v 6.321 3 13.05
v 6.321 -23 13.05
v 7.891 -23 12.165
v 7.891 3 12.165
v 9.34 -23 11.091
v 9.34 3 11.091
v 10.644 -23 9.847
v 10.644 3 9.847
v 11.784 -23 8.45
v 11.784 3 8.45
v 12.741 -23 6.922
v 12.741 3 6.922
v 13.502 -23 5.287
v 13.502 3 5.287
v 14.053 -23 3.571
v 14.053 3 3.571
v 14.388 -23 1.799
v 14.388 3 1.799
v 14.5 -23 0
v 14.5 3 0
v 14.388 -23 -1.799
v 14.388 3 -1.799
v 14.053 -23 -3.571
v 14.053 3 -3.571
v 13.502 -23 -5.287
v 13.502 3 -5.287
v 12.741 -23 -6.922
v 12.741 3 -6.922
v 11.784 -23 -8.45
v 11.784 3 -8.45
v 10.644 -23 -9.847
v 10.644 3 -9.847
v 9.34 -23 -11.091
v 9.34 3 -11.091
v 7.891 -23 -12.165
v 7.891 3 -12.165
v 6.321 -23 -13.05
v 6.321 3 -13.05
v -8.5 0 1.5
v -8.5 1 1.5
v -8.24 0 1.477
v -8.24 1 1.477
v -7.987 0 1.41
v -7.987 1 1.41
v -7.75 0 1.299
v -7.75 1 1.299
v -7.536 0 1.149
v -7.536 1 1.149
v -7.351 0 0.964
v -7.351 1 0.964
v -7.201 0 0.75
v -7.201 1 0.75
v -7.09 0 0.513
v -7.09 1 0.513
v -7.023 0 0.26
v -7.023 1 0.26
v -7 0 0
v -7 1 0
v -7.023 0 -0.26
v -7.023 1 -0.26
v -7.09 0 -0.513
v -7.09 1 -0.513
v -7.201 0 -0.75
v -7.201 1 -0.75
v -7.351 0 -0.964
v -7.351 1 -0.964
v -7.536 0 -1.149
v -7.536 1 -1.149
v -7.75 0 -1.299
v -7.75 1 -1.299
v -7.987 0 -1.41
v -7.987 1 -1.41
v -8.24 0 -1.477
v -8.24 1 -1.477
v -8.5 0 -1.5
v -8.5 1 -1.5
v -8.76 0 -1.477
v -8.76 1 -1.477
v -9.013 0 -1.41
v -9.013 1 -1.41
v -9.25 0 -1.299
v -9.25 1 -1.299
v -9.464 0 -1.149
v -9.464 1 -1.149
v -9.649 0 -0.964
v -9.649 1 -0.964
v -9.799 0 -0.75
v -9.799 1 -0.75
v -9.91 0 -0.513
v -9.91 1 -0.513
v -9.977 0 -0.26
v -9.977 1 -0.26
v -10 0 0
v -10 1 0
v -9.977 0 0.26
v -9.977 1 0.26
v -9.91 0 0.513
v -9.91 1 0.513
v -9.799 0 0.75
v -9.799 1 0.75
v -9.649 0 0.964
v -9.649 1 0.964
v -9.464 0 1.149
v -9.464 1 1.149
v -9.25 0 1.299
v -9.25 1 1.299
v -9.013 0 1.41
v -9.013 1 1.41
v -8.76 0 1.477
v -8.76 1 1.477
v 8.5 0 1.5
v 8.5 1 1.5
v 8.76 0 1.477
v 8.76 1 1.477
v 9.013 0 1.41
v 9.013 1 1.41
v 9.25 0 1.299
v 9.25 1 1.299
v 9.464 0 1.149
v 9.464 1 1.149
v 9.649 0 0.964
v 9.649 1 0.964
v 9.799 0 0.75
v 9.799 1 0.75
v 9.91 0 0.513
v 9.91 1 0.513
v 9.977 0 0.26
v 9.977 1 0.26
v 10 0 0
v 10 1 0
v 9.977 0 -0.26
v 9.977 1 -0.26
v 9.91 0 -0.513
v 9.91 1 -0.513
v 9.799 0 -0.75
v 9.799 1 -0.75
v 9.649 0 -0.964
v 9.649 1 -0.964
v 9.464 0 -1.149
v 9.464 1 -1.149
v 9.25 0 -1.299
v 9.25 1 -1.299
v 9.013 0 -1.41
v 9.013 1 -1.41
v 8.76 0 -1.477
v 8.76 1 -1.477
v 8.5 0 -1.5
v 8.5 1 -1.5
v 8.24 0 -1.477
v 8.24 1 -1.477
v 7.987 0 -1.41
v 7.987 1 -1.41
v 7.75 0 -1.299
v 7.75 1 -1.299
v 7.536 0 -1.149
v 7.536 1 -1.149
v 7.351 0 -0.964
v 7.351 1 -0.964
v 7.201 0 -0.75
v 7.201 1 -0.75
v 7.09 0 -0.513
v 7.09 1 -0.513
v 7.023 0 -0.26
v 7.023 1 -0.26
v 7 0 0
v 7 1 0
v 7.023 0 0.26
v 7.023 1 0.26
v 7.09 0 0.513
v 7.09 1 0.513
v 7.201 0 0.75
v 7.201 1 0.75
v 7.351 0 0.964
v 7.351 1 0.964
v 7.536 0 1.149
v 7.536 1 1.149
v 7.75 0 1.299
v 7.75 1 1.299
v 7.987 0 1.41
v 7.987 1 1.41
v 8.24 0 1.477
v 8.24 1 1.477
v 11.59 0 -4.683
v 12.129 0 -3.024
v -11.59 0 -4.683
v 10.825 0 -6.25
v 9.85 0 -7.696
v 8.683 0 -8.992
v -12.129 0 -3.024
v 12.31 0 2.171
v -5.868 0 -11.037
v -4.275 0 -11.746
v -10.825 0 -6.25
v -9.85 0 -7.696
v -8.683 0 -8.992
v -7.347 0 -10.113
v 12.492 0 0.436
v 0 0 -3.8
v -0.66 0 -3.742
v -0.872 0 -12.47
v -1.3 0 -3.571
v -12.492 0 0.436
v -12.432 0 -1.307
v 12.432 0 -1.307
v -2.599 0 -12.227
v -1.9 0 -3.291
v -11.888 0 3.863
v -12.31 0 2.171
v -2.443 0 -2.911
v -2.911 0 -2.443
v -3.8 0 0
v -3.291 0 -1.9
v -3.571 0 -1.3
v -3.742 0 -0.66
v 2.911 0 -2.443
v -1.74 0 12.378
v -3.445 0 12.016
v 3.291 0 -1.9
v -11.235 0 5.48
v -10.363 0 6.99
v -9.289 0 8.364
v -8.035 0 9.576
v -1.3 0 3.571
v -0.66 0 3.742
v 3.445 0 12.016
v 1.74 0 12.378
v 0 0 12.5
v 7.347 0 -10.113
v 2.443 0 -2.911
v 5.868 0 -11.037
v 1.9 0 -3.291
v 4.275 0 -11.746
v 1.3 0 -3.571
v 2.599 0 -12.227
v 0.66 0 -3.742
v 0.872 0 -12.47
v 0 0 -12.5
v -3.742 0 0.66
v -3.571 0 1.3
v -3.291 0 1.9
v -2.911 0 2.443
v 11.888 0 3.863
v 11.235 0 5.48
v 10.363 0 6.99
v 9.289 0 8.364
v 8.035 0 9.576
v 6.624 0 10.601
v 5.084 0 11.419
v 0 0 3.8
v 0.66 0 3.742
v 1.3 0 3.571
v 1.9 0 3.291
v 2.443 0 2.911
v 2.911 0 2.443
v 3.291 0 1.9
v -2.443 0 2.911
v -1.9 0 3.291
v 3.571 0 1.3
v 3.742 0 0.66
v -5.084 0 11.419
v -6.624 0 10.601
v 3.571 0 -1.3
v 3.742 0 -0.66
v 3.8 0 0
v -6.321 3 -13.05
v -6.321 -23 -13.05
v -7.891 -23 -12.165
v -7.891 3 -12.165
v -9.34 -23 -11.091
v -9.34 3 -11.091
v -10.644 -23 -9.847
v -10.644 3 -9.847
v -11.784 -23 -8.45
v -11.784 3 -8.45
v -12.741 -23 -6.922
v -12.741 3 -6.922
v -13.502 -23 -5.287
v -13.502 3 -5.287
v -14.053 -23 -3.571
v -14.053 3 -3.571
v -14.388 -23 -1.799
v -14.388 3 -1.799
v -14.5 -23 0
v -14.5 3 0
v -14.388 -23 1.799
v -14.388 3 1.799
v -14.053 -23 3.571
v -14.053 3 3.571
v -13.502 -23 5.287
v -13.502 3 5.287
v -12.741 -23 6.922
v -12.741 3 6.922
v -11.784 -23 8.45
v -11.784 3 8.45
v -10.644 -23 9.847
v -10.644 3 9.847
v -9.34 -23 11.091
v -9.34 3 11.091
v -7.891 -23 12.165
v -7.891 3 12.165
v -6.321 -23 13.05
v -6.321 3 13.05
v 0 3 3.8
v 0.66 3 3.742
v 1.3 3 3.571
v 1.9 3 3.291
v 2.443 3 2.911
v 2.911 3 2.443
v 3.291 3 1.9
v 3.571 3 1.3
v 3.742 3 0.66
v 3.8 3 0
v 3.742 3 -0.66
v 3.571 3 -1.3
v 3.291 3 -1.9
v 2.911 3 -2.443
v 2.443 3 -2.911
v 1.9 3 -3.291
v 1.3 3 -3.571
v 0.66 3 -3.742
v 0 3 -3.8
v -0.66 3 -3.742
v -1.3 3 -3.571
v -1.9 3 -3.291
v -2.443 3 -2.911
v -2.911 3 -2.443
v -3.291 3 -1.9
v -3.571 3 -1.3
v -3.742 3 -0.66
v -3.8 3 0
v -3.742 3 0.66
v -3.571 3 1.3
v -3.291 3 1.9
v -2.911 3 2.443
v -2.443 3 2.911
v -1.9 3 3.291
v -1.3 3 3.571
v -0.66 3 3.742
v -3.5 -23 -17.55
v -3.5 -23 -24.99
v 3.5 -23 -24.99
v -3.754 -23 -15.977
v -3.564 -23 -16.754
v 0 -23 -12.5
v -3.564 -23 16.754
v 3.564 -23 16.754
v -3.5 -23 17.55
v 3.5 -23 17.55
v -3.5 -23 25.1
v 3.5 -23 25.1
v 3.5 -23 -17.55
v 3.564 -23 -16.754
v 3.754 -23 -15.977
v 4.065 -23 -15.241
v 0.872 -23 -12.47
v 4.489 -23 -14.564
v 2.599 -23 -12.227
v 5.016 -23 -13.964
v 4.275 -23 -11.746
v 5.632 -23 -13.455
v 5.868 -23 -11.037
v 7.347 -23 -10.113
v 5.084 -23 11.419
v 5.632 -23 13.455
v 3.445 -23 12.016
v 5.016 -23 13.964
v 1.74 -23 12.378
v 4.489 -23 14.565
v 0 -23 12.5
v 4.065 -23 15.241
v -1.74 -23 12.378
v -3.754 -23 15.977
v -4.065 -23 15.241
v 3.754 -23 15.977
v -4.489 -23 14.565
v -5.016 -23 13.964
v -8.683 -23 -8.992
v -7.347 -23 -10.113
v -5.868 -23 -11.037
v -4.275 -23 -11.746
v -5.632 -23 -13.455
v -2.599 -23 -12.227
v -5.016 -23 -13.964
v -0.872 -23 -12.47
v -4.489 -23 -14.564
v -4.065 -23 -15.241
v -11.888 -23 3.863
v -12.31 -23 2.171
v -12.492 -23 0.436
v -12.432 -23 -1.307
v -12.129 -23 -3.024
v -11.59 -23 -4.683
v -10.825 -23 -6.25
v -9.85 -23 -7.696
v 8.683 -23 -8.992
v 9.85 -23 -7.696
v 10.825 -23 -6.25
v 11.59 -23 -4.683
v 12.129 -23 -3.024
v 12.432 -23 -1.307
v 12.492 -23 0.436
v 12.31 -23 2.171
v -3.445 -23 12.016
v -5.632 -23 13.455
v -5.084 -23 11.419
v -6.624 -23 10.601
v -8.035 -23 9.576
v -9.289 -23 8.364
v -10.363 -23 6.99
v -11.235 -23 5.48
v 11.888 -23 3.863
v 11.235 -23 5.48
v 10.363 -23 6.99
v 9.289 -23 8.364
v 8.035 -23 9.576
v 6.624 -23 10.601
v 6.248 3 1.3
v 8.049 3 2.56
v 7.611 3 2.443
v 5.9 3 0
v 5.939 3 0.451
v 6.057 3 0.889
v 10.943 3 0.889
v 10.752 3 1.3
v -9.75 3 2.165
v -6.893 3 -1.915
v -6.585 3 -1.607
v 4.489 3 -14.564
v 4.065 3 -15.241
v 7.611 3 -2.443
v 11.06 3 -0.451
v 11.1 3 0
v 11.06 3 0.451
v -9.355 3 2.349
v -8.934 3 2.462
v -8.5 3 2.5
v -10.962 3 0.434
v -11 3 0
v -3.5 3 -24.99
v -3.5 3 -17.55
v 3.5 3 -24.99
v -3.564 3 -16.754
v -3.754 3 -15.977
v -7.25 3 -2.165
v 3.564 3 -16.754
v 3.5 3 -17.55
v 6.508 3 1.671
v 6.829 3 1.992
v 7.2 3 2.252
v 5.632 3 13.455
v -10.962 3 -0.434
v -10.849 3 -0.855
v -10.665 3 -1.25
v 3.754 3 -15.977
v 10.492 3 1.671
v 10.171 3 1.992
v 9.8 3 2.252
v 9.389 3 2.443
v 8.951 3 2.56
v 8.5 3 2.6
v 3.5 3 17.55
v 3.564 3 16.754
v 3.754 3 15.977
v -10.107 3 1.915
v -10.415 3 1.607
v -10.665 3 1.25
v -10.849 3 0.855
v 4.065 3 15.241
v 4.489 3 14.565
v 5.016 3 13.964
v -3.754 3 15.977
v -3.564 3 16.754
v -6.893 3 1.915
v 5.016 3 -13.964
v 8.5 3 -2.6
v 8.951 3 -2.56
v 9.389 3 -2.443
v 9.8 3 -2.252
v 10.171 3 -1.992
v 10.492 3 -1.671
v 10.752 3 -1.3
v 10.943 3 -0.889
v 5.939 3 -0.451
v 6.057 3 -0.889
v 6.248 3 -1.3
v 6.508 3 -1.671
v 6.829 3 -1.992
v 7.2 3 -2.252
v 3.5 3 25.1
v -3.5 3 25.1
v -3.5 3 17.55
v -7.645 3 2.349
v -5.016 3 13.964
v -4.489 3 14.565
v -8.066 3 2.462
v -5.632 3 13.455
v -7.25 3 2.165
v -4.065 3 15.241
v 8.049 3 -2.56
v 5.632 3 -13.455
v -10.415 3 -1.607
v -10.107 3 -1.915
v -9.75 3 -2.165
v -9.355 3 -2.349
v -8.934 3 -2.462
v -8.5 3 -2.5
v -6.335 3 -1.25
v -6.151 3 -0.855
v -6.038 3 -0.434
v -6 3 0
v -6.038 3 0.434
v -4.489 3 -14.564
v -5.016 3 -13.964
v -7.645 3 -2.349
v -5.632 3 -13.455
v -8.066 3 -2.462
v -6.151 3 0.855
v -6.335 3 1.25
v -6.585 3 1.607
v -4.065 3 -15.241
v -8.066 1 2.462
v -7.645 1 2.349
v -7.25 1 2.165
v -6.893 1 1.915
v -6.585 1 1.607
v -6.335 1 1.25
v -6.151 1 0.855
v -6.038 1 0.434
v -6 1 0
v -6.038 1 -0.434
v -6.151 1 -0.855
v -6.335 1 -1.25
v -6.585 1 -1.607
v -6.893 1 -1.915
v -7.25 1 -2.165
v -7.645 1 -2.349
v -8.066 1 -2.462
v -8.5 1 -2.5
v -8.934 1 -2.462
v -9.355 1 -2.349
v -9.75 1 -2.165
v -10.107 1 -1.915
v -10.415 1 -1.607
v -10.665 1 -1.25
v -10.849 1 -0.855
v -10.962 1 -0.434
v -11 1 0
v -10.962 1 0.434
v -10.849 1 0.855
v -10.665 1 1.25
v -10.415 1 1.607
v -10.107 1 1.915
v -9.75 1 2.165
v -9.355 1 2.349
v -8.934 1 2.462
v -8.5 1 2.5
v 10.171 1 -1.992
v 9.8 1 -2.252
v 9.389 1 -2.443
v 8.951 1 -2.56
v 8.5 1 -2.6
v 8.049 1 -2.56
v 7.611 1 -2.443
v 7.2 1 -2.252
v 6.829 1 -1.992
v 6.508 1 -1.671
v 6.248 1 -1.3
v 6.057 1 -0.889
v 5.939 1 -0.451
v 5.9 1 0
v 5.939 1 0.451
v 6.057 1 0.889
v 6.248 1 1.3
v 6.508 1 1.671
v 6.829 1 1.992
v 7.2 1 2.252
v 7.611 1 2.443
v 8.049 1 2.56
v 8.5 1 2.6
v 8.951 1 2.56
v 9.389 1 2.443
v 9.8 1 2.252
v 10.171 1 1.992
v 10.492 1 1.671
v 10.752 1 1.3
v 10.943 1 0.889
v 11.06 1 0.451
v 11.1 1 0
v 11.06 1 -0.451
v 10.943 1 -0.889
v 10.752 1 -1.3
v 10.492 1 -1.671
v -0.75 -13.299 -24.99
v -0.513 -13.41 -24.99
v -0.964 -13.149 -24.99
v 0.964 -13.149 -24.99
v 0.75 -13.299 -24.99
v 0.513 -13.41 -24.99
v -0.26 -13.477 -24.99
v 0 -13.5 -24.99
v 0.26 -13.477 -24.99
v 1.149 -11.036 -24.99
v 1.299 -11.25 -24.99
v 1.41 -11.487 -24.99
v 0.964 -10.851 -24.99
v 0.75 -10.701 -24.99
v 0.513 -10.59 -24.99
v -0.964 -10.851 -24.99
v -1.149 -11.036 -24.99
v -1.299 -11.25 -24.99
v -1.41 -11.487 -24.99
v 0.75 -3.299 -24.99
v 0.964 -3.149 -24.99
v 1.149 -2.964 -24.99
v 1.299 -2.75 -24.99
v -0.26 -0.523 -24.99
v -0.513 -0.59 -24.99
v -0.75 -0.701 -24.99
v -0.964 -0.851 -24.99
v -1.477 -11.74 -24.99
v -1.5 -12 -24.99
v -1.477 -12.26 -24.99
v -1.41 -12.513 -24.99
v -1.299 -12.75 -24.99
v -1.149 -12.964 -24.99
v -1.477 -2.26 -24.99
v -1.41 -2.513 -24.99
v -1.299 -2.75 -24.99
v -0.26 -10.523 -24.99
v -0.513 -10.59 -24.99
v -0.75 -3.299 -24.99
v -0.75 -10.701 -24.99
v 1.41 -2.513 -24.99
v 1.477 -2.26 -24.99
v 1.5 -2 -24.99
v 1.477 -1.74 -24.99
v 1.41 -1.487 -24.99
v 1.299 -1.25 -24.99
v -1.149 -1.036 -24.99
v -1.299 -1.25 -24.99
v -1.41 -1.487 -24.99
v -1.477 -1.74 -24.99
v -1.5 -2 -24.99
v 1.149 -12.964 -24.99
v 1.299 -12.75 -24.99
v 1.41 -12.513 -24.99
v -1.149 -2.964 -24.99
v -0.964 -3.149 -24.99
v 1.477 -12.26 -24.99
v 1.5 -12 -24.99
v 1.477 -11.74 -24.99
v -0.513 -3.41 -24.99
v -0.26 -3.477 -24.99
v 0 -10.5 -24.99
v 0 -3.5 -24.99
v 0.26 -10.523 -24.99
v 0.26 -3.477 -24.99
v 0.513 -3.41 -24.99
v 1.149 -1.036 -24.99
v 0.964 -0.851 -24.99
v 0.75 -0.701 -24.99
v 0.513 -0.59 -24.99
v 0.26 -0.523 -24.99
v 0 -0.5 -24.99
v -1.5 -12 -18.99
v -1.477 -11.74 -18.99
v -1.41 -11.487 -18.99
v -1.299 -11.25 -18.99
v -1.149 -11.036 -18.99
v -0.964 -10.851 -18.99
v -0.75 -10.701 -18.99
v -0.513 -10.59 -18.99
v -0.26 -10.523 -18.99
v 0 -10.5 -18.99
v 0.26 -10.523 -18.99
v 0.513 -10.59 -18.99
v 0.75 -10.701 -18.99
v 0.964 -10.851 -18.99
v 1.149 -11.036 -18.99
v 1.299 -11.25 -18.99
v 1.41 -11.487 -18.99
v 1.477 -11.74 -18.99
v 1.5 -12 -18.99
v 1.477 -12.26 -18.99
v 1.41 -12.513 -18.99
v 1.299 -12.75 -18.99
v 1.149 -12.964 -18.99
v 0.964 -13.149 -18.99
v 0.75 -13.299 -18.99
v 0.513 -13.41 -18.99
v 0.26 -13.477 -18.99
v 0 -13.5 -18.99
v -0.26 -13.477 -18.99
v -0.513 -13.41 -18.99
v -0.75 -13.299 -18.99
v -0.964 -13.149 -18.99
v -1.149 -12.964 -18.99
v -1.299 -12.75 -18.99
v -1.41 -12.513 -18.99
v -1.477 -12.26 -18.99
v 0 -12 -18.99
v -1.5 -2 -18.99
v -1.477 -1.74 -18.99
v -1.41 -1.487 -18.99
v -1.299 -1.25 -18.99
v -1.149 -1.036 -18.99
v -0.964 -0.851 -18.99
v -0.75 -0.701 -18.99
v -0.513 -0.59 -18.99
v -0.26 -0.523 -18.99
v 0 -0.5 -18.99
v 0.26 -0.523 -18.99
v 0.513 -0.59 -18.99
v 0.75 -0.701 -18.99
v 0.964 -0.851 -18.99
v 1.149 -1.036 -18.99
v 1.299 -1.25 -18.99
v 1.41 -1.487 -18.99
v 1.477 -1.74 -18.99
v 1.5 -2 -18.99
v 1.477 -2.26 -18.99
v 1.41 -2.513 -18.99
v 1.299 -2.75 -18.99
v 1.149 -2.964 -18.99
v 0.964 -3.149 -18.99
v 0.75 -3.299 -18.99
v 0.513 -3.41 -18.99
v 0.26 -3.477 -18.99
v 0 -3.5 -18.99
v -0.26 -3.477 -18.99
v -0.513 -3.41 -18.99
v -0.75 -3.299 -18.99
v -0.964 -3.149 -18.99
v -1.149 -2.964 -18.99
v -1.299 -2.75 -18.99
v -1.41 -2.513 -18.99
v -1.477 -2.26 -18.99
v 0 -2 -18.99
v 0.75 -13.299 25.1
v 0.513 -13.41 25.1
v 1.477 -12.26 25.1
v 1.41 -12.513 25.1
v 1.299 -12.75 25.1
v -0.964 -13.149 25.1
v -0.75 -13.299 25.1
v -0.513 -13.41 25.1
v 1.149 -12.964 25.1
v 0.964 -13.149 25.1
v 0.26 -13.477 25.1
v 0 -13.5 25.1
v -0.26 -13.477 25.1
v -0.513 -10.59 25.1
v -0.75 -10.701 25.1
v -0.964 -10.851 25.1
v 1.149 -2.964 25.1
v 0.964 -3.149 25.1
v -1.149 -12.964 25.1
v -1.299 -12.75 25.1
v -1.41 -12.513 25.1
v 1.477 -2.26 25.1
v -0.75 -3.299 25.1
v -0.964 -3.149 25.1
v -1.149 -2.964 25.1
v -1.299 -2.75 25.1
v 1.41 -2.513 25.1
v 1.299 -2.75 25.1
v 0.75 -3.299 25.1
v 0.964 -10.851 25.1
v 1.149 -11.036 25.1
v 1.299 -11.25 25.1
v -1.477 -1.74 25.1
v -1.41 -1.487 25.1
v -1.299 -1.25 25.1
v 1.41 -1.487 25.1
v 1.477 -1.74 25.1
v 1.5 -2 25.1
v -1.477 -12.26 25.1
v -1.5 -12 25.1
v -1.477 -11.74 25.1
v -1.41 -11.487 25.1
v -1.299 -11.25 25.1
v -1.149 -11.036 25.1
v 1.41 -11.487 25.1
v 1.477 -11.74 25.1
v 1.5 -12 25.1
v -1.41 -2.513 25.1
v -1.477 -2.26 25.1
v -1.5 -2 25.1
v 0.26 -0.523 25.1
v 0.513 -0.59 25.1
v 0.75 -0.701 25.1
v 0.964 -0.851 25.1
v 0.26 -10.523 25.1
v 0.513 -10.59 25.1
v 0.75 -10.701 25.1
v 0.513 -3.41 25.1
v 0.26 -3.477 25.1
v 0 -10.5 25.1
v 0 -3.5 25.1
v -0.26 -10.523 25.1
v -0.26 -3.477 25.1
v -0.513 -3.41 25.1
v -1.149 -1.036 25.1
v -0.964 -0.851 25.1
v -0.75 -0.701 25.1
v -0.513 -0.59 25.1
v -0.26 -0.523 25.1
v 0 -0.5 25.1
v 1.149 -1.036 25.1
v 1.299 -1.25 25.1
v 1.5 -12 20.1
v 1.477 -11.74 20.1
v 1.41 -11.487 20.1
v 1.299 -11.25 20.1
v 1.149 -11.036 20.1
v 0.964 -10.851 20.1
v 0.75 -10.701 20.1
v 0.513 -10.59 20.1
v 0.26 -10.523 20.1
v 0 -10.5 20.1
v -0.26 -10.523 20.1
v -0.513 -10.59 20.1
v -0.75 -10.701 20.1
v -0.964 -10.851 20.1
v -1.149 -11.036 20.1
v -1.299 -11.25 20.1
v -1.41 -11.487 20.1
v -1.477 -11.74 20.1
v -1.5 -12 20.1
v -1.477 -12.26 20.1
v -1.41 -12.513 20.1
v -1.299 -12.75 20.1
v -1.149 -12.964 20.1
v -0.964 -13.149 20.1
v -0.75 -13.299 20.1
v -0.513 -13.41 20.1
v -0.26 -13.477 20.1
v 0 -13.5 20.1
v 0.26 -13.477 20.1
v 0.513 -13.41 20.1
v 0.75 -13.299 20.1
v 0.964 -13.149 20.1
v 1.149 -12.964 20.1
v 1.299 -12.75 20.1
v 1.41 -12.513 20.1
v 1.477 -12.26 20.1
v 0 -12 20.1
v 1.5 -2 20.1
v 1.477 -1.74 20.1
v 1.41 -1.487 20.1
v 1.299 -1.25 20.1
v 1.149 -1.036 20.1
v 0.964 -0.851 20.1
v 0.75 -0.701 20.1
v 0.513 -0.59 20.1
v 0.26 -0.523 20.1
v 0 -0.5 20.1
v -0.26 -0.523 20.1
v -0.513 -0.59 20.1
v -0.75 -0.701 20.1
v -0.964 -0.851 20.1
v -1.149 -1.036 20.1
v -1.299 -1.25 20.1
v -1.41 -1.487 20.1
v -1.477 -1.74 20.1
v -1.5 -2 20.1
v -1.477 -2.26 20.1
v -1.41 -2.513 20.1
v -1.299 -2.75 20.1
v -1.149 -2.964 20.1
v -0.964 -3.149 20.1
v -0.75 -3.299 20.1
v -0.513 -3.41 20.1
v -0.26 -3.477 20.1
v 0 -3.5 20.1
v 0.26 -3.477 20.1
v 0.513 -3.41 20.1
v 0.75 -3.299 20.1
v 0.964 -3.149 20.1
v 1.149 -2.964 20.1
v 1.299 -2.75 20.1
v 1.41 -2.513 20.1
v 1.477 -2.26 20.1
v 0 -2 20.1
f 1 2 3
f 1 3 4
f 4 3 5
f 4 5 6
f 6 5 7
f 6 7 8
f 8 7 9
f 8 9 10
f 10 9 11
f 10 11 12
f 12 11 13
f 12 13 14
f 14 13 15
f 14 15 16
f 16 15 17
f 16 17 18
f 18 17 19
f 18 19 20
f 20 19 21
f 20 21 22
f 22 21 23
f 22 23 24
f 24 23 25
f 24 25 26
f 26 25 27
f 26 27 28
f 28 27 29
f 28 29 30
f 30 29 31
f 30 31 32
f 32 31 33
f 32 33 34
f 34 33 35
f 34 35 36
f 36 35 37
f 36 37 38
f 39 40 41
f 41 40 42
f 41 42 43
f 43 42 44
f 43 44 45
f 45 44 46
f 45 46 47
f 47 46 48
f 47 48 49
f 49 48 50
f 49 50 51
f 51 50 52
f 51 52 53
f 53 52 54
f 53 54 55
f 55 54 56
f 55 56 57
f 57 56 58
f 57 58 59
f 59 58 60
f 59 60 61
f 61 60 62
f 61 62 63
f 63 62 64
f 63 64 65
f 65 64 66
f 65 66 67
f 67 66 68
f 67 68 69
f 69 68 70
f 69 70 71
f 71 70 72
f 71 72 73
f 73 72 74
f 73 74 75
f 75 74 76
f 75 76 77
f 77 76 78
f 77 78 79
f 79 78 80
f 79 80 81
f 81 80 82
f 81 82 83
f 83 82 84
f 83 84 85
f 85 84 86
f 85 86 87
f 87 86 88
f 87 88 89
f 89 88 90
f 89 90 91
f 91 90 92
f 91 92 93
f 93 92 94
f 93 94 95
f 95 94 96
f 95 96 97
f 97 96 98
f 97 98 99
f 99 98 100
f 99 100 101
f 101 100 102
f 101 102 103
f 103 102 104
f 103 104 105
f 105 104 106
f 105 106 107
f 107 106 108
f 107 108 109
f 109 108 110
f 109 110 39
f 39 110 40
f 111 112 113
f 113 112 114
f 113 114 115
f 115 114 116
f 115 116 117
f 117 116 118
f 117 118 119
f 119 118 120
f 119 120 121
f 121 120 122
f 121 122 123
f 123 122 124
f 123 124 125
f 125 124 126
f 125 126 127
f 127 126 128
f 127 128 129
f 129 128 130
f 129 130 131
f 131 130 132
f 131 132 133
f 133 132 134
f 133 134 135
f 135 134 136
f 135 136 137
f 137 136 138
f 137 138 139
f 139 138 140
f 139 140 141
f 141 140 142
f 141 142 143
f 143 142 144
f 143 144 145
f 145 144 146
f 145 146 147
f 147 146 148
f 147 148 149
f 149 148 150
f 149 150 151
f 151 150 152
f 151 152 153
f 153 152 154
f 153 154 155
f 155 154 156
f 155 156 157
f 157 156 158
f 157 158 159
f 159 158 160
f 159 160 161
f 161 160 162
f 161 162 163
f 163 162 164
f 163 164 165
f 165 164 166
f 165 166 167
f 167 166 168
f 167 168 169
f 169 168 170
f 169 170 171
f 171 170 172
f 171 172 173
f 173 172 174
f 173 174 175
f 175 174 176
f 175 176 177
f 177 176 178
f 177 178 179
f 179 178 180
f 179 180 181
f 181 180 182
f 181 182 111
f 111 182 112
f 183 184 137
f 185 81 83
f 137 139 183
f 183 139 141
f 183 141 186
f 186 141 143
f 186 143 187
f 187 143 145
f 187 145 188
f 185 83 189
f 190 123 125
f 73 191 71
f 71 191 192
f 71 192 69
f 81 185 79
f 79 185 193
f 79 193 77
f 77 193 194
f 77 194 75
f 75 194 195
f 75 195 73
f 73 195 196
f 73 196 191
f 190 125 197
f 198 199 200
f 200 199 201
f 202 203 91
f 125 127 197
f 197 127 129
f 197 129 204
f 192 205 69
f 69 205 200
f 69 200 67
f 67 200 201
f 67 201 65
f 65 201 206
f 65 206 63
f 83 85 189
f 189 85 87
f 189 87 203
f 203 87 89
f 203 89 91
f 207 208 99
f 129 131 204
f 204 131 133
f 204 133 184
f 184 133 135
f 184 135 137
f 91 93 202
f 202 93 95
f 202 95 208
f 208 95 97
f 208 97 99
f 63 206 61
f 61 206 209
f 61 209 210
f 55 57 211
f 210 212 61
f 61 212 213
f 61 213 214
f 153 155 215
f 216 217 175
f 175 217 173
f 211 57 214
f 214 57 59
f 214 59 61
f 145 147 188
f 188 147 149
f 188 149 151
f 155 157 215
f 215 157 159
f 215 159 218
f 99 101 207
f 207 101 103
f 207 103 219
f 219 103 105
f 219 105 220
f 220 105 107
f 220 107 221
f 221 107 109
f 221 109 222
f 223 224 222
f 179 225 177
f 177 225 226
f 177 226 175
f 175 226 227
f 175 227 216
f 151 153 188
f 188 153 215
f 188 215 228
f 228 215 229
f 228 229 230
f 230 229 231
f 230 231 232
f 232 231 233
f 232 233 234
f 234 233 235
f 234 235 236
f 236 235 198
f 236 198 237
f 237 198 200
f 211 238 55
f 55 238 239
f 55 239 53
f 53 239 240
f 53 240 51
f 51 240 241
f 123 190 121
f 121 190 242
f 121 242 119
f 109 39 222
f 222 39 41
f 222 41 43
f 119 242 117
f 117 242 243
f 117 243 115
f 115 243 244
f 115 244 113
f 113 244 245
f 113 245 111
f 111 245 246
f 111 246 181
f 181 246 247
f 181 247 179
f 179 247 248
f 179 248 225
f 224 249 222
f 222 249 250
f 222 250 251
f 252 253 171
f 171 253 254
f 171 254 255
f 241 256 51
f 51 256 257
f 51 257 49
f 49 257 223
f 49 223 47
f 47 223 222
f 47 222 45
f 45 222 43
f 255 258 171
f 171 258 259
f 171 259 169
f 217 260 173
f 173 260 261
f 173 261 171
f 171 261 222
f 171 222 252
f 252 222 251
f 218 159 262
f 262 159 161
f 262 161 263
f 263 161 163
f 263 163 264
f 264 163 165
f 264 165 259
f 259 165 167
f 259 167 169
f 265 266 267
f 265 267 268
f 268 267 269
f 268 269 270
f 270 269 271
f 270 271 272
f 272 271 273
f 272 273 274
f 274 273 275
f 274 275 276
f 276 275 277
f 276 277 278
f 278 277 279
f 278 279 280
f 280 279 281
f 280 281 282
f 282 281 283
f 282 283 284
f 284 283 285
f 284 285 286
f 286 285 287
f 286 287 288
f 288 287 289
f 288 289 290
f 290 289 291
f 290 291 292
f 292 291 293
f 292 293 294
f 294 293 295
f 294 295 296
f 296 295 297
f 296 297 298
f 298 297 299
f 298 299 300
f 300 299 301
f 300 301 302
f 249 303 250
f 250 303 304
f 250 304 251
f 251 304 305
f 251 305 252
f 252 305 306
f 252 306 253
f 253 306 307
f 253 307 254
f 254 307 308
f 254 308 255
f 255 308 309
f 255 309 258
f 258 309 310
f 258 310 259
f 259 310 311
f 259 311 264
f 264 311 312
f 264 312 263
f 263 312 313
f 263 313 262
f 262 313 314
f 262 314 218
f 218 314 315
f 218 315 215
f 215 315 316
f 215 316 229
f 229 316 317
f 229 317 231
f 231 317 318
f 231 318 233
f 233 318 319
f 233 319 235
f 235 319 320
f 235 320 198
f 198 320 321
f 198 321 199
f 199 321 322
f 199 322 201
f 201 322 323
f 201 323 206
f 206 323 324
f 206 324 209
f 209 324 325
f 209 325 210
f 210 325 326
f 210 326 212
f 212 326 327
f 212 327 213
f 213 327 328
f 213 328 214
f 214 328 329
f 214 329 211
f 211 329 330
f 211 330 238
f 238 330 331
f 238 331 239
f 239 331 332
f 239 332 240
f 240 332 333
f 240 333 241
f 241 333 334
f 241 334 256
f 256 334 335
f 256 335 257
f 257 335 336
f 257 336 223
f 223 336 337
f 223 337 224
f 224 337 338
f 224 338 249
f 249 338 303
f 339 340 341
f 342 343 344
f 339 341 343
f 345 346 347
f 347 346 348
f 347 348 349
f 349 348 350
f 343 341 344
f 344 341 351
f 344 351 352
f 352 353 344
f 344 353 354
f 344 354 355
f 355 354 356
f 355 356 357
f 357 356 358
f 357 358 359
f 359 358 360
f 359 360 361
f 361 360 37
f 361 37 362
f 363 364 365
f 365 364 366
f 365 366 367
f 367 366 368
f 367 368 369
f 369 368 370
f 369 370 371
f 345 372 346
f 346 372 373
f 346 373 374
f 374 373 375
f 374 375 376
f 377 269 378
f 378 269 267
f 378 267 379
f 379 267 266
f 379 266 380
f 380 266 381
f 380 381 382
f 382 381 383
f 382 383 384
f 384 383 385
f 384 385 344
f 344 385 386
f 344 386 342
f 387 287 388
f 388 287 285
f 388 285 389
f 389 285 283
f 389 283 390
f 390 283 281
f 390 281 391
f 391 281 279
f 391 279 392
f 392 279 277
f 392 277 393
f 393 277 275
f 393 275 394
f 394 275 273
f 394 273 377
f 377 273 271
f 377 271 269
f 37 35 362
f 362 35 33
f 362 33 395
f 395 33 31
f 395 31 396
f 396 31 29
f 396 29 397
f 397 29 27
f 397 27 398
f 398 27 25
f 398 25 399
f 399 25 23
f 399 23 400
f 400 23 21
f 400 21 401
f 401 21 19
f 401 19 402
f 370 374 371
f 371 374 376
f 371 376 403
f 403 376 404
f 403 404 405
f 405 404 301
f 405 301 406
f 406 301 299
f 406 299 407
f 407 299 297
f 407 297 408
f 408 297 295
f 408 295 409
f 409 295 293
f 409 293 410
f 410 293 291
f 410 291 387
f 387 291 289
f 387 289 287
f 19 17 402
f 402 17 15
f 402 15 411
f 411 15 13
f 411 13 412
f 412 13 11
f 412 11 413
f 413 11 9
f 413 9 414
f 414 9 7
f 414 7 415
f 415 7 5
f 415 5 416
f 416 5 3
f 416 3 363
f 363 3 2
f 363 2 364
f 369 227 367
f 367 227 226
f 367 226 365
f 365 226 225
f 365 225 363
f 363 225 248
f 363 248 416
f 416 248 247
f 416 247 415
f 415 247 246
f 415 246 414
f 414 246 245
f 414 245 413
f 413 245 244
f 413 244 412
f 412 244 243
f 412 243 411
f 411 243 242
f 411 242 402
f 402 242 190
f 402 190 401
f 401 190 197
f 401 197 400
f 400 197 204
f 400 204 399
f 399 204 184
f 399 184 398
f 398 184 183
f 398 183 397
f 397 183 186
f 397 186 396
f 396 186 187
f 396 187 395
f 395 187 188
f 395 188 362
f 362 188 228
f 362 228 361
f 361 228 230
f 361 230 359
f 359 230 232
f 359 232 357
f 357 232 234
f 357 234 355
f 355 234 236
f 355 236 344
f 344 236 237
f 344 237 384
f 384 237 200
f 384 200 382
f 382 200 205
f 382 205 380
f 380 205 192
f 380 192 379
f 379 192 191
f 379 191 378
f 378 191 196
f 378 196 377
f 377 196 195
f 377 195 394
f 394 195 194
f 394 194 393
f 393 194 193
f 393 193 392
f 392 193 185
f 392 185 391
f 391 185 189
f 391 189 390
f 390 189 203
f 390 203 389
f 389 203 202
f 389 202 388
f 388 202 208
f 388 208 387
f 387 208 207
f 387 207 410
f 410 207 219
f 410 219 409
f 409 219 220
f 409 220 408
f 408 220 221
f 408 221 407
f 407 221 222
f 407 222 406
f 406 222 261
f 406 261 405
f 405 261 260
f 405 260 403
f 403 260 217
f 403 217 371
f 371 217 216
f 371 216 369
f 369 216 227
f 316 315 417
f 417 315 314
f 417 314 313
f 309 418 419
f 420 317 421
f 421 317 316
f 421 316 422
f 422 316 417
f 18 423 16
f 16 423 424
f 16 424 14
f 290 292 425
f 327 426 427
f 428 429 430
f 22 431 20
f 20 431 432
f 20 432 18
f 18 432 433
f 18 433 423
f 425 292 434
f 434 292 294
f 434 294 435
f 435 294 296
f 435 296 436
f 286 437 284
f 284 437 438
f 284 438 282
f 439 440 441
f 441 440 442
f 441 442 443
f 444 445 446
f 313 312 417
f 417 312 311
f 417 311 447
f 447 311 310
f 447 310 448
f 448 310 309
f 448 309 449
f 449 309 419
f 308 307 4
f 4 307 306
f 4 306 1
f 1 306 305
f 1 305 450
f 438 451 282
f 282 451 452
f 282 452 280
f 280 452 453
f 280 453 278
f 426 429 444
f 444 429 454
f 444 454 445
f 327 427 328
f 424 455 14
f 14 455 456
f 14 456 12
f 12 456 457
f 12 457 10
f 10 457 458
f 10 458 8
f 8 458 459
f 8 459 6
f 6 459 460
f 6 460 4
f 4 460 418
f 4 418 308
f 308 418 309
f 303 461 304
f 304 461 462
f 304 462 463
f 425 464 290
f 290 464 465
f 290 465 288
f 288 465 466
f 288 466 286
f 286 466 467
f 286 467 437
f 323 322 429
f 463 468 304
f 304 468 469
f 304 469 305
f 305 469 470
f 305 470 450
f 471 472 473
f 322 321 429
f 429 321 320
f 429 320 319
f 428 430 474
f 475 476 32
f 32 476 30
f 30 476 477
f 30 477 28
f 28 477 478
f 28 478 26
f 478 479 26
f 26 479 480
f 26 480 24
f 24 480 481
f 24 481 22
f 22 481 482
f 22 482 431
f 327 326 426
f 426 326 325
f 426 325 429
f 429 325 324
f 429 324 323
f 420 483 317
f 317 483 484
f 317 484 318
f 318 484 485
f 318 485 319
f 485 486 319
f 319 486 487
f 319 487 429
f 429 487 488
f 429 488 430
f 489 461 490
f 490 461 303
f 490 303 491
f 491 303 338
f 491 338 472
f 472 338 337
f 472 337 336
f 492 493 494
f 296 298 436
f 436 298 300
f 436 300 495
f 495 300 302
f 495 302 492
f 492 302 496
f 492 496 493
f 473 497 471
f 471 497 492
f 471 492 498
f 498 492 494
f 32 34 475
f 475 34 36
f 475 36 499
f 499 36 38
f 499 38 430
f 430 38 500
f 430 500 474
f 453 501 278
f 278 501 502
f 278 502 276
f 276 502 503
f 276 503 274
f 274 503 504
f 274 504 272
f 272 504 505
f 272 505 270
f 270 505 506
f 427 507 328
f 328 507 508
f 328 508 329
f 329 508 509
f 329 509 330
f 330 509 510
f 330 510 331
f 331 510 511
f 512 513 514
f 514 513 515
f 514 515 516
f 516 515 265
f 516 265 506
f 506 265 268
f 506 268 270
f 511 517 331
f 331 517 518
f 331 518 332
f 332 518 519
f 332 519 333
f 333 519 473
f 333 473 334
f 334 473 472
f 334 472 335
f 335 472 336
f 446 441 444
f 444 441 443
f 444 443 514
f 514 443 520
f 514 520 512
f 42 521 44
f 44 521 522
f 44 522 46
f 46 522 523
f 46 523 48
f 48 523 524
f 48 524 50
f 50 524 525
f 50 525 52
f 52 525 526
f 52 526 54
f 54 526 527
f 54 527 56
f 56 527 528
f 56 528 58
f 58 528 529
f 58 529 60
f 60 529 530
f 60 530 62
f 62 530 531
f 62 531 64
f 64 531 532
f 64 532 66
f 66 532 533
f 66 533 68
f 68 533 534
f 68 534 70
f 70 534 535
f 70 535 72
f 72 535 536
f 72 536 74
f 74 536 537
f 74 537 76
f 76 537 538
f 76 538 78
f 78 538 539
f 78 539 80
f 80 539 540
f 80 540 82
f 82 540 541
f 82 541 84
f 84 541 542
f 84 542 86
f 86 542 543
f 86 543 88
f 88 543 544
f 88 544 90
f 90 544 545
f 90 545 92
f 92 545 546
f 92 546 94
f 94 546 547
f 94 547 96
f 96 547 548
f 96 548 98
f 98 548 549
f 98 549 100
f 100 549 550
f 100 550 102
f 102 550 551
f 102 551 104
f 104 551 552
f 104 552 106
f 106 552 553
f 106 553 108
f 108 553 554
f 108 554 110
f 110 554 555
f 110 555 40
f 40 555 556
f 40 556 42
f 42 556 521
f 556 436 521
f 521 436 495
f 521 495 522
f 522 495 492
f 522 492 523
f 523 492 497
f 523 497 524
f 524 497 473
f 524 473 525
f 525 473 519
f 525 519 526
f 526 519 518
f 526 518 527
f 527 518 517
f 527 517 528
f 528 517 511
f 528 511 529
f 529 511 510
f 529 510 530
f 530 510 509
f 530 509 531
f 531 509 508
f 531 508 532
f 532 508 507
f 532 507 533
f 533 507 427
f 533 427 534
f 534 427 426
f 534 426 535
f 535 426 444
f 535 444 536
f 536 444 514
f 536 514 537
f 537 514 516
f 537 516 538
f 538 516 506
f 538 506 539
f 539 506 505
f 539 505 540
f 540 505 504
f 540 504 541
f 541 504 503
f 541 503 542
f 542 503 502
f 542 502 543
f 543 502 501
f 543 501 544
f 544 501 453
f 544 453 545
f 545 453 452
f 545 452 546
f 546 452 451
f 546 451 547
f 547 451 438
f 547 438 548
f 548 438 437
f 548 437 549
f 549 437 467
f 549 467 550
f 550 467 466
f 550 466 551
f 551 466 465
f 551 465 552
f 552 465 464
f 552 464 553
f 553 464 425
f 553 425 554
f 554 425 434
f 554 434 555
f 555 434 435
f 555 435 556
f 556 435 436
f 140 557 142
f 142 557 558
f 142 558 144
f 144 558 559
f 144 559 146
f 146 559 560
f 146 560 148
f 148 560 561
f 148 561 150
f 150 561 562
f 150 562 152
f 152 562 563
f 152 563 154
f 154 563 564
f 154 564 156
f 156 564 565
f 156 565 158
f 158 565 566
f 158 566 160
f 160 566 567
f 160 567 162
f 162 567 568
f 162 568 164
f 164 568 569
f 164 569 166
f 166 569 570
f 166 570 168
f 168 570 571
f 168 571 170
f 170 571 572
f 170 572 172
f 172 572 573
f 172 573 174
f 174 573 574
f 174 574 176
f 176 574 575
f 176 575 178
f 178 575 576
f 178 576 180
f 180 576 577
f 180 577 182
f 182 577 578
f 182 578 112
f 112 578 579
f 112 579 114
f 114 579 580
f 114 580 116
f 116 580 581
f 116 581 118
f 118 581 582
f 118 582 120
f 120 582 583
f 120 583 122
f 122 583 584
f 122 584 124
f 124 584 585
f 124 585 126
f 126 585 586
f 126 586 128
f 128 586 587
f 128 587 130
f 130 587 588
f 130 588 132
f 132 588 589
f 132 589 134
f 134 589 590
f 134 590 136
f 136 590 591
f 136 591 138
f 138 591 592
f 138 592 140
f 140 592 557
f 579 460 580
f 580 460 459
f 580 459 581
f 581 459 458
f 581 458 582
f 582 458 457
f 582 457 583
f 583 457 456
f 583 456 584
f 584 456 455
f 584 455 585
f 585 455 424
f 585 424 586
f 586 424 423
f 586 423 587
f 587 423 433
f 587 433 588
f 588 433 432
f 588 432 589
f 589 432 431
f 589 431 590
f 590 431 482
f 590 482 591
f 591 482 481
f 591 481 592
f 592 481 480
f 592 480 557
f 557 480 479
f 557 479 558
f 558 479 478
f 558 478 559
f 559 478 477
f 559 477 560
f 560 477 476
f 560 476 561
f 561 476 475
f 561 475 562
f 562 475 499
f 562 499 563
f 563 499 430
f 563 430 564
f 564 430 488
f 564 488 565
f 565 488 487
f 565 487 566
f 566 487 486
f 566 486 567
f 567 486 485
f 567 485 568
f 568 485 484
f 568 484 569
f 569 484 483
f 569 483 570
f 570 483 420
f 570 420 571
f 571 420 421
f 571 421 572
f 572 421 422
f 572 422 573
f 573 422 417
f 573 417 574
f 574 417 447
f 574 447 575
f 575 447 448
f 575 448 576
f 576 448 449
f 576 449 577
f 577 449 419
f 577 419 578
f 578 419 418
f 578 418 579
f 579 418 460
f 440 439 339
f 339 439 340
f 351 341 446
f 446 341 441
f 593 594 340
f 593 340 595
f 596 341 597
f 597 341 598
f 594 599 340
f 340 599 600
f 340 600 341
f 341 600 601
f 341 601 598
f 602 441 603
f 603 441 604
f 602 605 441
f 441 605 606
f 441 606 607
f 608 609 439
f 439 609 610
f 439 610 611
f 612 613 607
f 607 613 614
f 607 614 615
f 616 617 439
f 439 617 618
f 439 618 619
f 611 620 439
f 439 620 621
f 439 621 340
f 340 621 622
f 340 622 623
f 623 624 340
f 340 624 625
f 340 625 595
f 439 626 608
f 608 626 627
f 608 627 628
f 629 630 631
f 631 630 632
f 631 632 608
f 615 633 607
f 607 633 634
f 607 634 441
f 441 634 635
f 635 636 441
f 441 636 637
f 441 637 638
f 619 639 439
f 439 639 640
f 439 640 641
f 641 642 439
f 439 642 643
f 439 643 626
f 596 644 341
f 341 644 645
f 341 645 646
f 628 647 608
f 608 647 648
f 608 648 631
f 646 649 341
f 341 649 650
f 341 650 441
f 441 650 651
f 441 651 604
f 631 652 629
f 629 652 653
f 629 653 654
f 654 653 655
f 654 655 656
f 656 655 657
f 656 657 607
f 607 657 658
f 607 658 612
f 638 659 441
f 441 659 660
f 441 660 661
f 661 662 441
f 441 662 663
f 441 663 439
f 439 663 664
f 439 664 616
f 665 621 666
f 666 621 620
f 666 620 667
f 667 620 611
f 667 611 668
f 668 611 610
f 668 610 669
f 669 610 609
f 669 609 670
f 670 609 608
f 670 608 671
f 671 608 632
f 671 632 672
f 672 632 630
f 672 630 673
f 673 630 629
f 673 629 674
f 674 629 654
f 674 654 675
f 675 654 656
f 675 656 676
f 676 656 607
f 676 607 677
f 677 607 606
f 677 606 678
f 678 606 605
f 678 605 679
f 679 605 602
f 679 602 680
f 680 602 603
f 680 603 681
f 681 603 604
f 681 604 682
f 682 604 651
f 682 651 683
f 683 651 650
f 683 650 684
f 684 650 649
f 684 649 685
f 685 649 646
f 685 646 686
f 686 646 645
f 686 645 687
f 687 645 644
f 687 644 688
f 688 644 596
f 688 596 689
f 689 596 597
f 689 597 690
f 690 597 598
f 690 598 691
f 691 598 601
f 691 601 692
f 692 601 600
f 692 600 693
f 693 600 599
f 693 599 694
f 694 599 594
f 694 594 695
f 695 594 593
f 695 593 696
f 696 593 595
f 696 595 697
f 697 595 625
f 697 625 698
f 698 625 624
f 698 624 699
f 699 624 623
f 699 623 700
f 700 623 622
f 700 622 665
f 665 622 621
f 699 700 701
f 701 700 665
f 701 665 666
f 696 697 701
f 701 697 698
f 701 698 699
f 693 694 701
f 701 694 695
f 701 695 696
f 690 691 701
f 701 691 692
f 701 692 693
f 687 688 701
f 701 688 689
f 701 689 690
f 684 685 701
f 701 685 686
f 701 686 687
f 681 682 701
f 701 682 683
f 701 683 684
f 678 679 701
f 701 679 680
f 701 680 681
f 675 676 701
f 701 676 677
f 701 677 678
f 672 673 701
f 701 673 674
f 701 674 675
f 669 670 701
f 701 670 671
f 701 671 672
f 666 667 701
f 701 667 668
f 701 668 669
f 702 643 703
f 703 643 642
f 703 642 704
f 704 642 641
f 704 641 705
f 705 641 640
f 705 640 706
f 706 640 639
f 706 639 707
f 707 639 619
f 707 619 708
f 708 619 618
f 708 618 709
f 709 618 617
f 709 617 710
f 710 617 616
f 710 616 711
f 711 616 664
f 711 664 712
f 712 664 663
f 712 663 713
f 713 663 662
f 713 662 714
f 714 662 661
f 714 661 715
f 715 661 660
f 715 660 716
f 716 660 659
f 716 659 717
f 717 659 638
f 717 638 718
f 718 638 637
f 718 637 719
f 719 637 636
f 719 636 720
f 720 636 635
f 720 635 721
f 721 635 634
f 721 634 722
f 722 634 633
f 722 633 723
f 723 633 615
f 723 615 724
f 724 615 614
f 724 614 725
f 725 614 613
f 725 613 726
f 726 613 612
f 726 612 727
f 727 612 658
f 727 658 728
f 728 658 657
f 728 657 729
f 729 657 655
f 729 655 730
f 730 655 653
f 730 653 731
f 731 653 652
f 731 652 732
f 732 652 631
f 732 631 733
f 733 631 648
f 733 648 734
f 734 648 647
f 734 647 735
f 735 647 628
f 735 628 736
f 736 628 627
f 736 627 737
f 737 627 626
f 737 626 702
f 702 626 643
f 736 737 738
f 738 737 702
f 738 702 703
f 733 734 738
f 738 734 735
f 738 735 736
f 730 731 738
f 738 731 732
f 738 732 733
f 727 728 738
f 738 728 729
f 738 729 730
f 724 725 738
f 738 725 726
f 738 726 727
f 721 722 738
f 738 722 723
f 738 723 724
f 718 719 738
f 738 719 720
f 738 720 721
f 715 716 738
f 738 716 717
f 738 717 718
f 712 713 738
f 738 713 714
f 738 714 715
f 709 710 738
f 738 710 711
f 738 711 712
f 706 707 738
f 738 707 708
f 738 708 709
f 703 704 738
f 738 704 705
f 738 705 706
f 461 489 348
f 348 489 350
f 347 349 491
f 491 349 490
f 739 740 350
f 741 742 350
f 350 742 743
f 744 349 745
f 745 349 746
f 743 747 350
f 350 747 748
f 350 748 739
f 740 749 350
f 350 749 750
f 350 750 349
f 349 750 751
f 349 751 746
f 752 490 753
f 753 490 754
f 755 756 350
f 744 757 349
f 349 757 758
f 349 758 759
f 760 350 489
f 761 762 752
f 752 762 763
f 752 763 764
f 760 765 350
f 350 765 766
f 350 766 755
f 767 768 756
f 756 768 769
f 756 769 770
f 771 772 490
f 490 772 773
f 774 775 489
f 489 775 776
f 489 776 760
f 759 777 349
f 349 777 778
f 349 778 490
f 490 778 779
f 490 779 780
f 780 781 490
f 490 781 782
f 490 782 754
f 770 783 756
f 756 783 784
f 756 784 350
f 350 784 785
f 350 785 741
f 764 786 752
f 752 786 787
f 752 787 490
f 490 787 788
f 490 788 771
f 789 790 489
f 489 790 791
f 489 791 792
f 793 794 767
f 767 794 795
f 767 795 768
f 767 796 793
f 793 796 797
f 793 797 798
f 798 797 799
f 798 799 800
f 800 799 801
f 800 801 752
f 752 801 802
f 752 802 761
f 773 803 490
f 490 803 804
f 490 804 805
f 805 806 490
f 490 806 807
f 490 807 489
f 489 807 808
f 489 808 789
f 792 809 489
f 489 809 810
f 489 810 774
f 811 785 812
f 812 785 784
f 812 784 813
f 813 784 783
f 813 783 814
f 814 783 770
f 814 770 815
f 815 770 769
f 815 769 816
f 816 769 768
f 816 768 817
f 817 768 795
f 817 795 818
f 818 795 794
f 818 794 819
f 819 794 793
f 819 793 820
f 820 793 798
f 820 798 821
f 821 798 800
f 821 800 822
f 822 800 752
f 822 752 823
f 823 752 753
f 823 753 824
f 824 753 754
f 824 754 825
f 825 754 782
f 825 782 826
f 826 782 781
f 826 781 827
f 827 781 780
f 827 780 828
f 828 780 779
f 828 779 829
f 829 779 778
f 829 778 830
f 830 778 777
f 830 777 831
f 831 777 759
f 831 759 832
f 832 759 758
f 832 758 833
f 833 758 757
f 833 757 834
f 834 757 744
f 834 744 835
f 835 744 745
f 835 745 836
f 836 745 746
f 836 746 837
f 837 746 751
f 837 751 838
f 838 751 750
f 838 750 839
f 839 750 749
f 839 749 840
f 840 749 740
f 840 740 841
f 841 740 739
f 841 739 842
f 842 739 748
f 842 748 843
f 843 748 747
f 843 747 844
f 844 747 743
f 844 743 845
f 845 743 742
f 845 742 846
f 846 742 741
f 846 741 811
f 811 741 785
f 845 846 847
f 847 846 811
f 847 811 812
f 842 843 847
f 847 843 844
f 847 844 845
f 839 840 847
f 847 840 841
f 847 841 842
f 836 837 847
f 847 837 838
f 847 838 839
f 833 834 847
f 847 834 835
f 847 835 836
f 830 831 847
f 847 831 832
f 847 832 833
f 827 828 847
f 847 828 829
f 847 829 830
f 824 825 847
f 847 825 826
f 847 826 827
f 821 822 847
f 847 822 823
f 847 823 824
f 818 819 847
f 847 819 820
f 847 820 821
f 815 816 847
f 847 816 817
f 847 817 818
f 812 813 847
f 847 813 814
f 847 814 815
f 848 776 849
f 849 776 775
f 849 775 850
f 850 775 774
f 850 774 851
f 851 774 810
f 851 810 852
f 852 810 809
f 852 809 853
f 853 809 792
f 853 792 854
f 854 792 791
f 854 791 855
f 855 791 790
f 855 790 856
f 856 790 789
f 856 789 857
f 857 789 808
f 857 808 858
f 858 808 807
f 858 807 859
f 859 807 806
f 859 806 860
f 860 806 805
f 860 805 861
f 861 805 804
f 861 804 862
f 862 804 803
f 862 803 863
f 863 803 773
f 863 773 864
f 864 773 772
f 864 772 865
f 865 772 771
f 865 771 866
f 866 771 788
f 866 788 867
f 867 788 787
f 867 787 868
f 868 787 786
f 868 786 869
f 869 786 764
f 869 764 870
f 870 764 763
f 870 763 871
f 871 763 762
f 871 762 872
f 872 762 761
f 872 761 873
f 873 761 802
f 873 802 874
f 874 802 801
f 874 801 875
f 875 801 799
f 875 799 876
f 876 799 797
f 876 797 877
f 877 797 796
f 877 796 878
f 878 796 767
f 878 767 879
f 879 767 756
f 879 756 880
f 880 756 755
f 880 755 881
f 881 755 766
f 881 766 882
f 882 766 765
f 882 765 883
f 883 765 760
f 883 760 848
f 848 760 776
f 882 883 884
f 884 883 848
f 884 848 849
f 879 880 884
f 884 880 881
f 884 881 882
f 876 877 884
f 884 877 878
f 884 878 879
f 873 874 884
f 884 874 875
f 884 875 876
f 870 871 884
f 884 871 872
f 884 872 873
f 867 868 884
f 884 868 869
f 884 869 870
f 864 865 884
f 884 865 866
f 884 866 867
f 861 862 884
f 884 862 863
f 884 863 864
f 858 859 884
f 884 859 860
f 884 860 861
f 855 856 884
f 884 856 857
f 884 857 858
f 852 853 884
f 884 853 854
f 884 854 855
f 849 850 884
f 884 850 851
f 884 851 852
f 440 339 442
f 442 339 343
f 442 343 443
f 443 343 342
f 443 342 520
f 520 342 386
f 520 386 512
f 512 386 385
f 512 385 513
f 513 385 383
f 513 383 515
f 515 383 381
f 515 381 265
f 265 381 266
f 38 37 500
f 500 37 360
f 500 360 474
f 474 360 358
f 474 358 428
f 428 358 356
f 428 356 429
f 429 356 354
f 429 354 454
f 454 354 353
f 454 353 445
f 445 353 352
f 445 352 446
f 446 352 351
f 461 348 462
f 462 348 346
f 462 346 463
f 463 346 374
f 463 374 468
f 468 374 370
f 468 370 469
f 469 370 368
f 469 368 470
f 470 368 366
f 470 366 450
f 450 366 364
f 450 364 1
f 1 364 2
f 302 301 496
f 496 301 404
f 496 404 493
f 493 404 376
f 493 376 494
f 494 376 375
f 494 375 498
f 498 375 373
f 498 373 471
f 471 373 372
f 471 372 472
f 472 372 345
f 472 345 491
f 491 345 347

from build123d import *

# Parameters (mm, degrees)
SKETCH1_R           = 14.5
BOSS_EXTRUDE1_DEPTH = 2
SKETCH2_R           = 3.8
SKETCH2_R_2         = 1.5
CUT_EXTRUDE1_DEPTH  = 2.5
SKETCH3_R           = 14.5
SKETCH3_R_2         = 12.5
BOSS_EXTRUDE2_DEPTH = 23
SKETCH4_R           = 14.5
SKETCH4_R_2         = 3.8
SKETCH4_R_3         = 1.5
BOSS_EXTRUDE3_DEPTH = 1
SKETCH5_R           = 2.6
SKETCH5_R_2         = 2.5
CUT_EXTRUDE2_DEPTH  = 2
BOSS_EXTRUDE4_DEPTH = 26
SKETCH14_W          = 7
SKETCH14_H          = 26
CUT_EXTRUDE3_DEPTH  = 0.11
SKETCH16_R          = 1.5
CUT_EXTRUDE4_DEPTH  = 6
BOSS_EXTRUDE5_DEPTH = 26
SKETCH19_R          = 1.5
CUT_EXTRUDE5_DEPTH  = 5
FILLET1_R           = 5


with BuildPart() as part:
    # Sketch1 → Boss-Extrude1 (new body)
    with BuildSketch(Plane(origin=(0, 0, 0), x_dir=(1, 0, 0), z_dir=(0, 1, 0))):
        Circle(SKETCH1_R)
    extrude(amount=BOSS_EXTRUDE1_DEPTH)

    # Sketch2 → Cut-Extrude1 (cut)
    with BuildSketch(Plane(origin=(0, 2, 0), x_dir=(1, 0, 0), z_dir=(0, 1, 0))):
        Circle(SKETCH2_R)
        with Locations((-8.5, 0)):
            Circle(SKETCH2_R_2)
        with Locations((8.5, 0)):
            Circle(SKETCH2_R_2)
    extrude(amount=-CUT_EXTRUDE1_DEPTH, mode=Mode.SUBTRACT)

    # Sketch3 → Boss-Extrude2 (add)
    with BuildSketch(Plane.XZ):
        Circle(SKETCH3_R)
        Circle(SKETCH3_R_2, mode=Mode.SUBTRACT)
    extrude(amount=BOSS_EXTRUDE2_DEPTH)

    # Sketch4 → Boss-Extrude3 (add)
    with BuildSketch(Plane(origin=(0, 2, 0), x_dir=(1, 0, 0), z_dir=(0, 1, 0))):
        Circle(SKETCH4_R)
        Circle(SKETCH4_R_2, mode=Mode.SUBTRACT)
        with Locations((8.5, 0)):
            Circle(SKETCH4_R_3, mode=Mode.SUBTRACT)
        with Locations((-8.5, 0)):
            Circle(SKETCH4_R_3, mode=Mode.SUBTRACT)
    extrude(amount=BOSS_EXTRUDE3_DEPTH)

    # Sketch5 → Cut-Extrude2 (cut)
    with BuildSketch(Plane(origin=(0, 3, 0), x_dir=(1, 0, 0), z_dir=(0, 1, 0))):
        with Locations((8.5, 0)):
            Circle(SKETCH5_R)
        with Locations((-8.5, 0)):
            Circle(SKETCH5_R_2)
    extrude(amount=-CUT_EXTRUDE2_DEPTH, mode=Mode.SUBTRACT)

    # Sketch12 → Boss-Extrude4 (add)
    with BuildSketch(Plane.XZ.offset(23)):
        with BuildLine():
            Line((3.5, -25.1), (-3.5, -25.1))
            Line((-3.5, -25.1), (-3.5, -14.071247279))
            ThreePointArc((-3.5, -14.071247279), (0, -14.5), (3.5, -14.071247279))
            Line((3.5, -14.071247279), (3.5, -25.1))
        make_face()
    extrude(amount=-BOSS_EXTRUDE4_DEPTH)

    # Sketch14 → Cut-Extrude3 (cut)
    with BuildSketch(Plane(origin=(0, 0, -25.1), x_dir=(-1, 0, 0), z_dir=(0, 0, -1))):
        with Locations((0, -10)):
            Rectangle(SKETCH14_W, SKETCH14_H)
    extrude(amount=-CUT_EXTRUDE3_DEPTH, mode=Mode.SUBTRACT)

    # Sketch16 → Cut-Extrude4 (cut)
    with BuildSketch(Plane(origin=(0, 0, -24.99), x_dir=(-1, 0, 0), z_dir=(0, 0, -1))):
        with Locations((0, -2)):
            Circle(SKETCH16_R)
        with Locations((0, -12)):
            Circle(SKETCH16_R)
    extrude(amount=-CUT_EXTRUDE4_DEPTH, mode=Mode.SUBTRACT)

    # Sketch18 → Boss-Extrude5 (add, through all)
    with BuildSketch(Plane.XZ.offset(23)):
        with BuildLine():
            Line((3.5, 25.1), (-3.5, 25.1))
            Line((-3.5, 25.1), (-3.5, 14.071247279))
            ThreePointArc((-3.5, 14.071247279), (0, 14.5), (3.5, 14.071247279))
            Line((3.5, 14.071247279), (3.5, 25.1))
        make_face()
    extrude(amount=-BOSS_EXTRUDE5_DEPTH)

    # Sketch19 → Cut-Extrude5 (cut)
    with BuildSketch(Plane.XY.offset(25.1)):
        with Locations((0, -2)):
            Circle(SKETCH19_R)
        with Locations((0, -12)):
            Circle(SKETCH19_R)
    extrude(amount=-CUT_EXTRUDE5_DEPTH, mode=Mode.SUBTRACT)

    # Fillet1
    fillet1_edges = [part.edges().sort_by_distance(p)[0] for p in [
        (-3.5, -10, -14.071247279),
        (3.5, -10, -14.071247279),
        (3.5, -10, 14.071247279),
        (-3.5, -10, 14.071247279),
    ]]
    fillet(fillet1_edges, radius=FILLET1_R)


solid = part.part
